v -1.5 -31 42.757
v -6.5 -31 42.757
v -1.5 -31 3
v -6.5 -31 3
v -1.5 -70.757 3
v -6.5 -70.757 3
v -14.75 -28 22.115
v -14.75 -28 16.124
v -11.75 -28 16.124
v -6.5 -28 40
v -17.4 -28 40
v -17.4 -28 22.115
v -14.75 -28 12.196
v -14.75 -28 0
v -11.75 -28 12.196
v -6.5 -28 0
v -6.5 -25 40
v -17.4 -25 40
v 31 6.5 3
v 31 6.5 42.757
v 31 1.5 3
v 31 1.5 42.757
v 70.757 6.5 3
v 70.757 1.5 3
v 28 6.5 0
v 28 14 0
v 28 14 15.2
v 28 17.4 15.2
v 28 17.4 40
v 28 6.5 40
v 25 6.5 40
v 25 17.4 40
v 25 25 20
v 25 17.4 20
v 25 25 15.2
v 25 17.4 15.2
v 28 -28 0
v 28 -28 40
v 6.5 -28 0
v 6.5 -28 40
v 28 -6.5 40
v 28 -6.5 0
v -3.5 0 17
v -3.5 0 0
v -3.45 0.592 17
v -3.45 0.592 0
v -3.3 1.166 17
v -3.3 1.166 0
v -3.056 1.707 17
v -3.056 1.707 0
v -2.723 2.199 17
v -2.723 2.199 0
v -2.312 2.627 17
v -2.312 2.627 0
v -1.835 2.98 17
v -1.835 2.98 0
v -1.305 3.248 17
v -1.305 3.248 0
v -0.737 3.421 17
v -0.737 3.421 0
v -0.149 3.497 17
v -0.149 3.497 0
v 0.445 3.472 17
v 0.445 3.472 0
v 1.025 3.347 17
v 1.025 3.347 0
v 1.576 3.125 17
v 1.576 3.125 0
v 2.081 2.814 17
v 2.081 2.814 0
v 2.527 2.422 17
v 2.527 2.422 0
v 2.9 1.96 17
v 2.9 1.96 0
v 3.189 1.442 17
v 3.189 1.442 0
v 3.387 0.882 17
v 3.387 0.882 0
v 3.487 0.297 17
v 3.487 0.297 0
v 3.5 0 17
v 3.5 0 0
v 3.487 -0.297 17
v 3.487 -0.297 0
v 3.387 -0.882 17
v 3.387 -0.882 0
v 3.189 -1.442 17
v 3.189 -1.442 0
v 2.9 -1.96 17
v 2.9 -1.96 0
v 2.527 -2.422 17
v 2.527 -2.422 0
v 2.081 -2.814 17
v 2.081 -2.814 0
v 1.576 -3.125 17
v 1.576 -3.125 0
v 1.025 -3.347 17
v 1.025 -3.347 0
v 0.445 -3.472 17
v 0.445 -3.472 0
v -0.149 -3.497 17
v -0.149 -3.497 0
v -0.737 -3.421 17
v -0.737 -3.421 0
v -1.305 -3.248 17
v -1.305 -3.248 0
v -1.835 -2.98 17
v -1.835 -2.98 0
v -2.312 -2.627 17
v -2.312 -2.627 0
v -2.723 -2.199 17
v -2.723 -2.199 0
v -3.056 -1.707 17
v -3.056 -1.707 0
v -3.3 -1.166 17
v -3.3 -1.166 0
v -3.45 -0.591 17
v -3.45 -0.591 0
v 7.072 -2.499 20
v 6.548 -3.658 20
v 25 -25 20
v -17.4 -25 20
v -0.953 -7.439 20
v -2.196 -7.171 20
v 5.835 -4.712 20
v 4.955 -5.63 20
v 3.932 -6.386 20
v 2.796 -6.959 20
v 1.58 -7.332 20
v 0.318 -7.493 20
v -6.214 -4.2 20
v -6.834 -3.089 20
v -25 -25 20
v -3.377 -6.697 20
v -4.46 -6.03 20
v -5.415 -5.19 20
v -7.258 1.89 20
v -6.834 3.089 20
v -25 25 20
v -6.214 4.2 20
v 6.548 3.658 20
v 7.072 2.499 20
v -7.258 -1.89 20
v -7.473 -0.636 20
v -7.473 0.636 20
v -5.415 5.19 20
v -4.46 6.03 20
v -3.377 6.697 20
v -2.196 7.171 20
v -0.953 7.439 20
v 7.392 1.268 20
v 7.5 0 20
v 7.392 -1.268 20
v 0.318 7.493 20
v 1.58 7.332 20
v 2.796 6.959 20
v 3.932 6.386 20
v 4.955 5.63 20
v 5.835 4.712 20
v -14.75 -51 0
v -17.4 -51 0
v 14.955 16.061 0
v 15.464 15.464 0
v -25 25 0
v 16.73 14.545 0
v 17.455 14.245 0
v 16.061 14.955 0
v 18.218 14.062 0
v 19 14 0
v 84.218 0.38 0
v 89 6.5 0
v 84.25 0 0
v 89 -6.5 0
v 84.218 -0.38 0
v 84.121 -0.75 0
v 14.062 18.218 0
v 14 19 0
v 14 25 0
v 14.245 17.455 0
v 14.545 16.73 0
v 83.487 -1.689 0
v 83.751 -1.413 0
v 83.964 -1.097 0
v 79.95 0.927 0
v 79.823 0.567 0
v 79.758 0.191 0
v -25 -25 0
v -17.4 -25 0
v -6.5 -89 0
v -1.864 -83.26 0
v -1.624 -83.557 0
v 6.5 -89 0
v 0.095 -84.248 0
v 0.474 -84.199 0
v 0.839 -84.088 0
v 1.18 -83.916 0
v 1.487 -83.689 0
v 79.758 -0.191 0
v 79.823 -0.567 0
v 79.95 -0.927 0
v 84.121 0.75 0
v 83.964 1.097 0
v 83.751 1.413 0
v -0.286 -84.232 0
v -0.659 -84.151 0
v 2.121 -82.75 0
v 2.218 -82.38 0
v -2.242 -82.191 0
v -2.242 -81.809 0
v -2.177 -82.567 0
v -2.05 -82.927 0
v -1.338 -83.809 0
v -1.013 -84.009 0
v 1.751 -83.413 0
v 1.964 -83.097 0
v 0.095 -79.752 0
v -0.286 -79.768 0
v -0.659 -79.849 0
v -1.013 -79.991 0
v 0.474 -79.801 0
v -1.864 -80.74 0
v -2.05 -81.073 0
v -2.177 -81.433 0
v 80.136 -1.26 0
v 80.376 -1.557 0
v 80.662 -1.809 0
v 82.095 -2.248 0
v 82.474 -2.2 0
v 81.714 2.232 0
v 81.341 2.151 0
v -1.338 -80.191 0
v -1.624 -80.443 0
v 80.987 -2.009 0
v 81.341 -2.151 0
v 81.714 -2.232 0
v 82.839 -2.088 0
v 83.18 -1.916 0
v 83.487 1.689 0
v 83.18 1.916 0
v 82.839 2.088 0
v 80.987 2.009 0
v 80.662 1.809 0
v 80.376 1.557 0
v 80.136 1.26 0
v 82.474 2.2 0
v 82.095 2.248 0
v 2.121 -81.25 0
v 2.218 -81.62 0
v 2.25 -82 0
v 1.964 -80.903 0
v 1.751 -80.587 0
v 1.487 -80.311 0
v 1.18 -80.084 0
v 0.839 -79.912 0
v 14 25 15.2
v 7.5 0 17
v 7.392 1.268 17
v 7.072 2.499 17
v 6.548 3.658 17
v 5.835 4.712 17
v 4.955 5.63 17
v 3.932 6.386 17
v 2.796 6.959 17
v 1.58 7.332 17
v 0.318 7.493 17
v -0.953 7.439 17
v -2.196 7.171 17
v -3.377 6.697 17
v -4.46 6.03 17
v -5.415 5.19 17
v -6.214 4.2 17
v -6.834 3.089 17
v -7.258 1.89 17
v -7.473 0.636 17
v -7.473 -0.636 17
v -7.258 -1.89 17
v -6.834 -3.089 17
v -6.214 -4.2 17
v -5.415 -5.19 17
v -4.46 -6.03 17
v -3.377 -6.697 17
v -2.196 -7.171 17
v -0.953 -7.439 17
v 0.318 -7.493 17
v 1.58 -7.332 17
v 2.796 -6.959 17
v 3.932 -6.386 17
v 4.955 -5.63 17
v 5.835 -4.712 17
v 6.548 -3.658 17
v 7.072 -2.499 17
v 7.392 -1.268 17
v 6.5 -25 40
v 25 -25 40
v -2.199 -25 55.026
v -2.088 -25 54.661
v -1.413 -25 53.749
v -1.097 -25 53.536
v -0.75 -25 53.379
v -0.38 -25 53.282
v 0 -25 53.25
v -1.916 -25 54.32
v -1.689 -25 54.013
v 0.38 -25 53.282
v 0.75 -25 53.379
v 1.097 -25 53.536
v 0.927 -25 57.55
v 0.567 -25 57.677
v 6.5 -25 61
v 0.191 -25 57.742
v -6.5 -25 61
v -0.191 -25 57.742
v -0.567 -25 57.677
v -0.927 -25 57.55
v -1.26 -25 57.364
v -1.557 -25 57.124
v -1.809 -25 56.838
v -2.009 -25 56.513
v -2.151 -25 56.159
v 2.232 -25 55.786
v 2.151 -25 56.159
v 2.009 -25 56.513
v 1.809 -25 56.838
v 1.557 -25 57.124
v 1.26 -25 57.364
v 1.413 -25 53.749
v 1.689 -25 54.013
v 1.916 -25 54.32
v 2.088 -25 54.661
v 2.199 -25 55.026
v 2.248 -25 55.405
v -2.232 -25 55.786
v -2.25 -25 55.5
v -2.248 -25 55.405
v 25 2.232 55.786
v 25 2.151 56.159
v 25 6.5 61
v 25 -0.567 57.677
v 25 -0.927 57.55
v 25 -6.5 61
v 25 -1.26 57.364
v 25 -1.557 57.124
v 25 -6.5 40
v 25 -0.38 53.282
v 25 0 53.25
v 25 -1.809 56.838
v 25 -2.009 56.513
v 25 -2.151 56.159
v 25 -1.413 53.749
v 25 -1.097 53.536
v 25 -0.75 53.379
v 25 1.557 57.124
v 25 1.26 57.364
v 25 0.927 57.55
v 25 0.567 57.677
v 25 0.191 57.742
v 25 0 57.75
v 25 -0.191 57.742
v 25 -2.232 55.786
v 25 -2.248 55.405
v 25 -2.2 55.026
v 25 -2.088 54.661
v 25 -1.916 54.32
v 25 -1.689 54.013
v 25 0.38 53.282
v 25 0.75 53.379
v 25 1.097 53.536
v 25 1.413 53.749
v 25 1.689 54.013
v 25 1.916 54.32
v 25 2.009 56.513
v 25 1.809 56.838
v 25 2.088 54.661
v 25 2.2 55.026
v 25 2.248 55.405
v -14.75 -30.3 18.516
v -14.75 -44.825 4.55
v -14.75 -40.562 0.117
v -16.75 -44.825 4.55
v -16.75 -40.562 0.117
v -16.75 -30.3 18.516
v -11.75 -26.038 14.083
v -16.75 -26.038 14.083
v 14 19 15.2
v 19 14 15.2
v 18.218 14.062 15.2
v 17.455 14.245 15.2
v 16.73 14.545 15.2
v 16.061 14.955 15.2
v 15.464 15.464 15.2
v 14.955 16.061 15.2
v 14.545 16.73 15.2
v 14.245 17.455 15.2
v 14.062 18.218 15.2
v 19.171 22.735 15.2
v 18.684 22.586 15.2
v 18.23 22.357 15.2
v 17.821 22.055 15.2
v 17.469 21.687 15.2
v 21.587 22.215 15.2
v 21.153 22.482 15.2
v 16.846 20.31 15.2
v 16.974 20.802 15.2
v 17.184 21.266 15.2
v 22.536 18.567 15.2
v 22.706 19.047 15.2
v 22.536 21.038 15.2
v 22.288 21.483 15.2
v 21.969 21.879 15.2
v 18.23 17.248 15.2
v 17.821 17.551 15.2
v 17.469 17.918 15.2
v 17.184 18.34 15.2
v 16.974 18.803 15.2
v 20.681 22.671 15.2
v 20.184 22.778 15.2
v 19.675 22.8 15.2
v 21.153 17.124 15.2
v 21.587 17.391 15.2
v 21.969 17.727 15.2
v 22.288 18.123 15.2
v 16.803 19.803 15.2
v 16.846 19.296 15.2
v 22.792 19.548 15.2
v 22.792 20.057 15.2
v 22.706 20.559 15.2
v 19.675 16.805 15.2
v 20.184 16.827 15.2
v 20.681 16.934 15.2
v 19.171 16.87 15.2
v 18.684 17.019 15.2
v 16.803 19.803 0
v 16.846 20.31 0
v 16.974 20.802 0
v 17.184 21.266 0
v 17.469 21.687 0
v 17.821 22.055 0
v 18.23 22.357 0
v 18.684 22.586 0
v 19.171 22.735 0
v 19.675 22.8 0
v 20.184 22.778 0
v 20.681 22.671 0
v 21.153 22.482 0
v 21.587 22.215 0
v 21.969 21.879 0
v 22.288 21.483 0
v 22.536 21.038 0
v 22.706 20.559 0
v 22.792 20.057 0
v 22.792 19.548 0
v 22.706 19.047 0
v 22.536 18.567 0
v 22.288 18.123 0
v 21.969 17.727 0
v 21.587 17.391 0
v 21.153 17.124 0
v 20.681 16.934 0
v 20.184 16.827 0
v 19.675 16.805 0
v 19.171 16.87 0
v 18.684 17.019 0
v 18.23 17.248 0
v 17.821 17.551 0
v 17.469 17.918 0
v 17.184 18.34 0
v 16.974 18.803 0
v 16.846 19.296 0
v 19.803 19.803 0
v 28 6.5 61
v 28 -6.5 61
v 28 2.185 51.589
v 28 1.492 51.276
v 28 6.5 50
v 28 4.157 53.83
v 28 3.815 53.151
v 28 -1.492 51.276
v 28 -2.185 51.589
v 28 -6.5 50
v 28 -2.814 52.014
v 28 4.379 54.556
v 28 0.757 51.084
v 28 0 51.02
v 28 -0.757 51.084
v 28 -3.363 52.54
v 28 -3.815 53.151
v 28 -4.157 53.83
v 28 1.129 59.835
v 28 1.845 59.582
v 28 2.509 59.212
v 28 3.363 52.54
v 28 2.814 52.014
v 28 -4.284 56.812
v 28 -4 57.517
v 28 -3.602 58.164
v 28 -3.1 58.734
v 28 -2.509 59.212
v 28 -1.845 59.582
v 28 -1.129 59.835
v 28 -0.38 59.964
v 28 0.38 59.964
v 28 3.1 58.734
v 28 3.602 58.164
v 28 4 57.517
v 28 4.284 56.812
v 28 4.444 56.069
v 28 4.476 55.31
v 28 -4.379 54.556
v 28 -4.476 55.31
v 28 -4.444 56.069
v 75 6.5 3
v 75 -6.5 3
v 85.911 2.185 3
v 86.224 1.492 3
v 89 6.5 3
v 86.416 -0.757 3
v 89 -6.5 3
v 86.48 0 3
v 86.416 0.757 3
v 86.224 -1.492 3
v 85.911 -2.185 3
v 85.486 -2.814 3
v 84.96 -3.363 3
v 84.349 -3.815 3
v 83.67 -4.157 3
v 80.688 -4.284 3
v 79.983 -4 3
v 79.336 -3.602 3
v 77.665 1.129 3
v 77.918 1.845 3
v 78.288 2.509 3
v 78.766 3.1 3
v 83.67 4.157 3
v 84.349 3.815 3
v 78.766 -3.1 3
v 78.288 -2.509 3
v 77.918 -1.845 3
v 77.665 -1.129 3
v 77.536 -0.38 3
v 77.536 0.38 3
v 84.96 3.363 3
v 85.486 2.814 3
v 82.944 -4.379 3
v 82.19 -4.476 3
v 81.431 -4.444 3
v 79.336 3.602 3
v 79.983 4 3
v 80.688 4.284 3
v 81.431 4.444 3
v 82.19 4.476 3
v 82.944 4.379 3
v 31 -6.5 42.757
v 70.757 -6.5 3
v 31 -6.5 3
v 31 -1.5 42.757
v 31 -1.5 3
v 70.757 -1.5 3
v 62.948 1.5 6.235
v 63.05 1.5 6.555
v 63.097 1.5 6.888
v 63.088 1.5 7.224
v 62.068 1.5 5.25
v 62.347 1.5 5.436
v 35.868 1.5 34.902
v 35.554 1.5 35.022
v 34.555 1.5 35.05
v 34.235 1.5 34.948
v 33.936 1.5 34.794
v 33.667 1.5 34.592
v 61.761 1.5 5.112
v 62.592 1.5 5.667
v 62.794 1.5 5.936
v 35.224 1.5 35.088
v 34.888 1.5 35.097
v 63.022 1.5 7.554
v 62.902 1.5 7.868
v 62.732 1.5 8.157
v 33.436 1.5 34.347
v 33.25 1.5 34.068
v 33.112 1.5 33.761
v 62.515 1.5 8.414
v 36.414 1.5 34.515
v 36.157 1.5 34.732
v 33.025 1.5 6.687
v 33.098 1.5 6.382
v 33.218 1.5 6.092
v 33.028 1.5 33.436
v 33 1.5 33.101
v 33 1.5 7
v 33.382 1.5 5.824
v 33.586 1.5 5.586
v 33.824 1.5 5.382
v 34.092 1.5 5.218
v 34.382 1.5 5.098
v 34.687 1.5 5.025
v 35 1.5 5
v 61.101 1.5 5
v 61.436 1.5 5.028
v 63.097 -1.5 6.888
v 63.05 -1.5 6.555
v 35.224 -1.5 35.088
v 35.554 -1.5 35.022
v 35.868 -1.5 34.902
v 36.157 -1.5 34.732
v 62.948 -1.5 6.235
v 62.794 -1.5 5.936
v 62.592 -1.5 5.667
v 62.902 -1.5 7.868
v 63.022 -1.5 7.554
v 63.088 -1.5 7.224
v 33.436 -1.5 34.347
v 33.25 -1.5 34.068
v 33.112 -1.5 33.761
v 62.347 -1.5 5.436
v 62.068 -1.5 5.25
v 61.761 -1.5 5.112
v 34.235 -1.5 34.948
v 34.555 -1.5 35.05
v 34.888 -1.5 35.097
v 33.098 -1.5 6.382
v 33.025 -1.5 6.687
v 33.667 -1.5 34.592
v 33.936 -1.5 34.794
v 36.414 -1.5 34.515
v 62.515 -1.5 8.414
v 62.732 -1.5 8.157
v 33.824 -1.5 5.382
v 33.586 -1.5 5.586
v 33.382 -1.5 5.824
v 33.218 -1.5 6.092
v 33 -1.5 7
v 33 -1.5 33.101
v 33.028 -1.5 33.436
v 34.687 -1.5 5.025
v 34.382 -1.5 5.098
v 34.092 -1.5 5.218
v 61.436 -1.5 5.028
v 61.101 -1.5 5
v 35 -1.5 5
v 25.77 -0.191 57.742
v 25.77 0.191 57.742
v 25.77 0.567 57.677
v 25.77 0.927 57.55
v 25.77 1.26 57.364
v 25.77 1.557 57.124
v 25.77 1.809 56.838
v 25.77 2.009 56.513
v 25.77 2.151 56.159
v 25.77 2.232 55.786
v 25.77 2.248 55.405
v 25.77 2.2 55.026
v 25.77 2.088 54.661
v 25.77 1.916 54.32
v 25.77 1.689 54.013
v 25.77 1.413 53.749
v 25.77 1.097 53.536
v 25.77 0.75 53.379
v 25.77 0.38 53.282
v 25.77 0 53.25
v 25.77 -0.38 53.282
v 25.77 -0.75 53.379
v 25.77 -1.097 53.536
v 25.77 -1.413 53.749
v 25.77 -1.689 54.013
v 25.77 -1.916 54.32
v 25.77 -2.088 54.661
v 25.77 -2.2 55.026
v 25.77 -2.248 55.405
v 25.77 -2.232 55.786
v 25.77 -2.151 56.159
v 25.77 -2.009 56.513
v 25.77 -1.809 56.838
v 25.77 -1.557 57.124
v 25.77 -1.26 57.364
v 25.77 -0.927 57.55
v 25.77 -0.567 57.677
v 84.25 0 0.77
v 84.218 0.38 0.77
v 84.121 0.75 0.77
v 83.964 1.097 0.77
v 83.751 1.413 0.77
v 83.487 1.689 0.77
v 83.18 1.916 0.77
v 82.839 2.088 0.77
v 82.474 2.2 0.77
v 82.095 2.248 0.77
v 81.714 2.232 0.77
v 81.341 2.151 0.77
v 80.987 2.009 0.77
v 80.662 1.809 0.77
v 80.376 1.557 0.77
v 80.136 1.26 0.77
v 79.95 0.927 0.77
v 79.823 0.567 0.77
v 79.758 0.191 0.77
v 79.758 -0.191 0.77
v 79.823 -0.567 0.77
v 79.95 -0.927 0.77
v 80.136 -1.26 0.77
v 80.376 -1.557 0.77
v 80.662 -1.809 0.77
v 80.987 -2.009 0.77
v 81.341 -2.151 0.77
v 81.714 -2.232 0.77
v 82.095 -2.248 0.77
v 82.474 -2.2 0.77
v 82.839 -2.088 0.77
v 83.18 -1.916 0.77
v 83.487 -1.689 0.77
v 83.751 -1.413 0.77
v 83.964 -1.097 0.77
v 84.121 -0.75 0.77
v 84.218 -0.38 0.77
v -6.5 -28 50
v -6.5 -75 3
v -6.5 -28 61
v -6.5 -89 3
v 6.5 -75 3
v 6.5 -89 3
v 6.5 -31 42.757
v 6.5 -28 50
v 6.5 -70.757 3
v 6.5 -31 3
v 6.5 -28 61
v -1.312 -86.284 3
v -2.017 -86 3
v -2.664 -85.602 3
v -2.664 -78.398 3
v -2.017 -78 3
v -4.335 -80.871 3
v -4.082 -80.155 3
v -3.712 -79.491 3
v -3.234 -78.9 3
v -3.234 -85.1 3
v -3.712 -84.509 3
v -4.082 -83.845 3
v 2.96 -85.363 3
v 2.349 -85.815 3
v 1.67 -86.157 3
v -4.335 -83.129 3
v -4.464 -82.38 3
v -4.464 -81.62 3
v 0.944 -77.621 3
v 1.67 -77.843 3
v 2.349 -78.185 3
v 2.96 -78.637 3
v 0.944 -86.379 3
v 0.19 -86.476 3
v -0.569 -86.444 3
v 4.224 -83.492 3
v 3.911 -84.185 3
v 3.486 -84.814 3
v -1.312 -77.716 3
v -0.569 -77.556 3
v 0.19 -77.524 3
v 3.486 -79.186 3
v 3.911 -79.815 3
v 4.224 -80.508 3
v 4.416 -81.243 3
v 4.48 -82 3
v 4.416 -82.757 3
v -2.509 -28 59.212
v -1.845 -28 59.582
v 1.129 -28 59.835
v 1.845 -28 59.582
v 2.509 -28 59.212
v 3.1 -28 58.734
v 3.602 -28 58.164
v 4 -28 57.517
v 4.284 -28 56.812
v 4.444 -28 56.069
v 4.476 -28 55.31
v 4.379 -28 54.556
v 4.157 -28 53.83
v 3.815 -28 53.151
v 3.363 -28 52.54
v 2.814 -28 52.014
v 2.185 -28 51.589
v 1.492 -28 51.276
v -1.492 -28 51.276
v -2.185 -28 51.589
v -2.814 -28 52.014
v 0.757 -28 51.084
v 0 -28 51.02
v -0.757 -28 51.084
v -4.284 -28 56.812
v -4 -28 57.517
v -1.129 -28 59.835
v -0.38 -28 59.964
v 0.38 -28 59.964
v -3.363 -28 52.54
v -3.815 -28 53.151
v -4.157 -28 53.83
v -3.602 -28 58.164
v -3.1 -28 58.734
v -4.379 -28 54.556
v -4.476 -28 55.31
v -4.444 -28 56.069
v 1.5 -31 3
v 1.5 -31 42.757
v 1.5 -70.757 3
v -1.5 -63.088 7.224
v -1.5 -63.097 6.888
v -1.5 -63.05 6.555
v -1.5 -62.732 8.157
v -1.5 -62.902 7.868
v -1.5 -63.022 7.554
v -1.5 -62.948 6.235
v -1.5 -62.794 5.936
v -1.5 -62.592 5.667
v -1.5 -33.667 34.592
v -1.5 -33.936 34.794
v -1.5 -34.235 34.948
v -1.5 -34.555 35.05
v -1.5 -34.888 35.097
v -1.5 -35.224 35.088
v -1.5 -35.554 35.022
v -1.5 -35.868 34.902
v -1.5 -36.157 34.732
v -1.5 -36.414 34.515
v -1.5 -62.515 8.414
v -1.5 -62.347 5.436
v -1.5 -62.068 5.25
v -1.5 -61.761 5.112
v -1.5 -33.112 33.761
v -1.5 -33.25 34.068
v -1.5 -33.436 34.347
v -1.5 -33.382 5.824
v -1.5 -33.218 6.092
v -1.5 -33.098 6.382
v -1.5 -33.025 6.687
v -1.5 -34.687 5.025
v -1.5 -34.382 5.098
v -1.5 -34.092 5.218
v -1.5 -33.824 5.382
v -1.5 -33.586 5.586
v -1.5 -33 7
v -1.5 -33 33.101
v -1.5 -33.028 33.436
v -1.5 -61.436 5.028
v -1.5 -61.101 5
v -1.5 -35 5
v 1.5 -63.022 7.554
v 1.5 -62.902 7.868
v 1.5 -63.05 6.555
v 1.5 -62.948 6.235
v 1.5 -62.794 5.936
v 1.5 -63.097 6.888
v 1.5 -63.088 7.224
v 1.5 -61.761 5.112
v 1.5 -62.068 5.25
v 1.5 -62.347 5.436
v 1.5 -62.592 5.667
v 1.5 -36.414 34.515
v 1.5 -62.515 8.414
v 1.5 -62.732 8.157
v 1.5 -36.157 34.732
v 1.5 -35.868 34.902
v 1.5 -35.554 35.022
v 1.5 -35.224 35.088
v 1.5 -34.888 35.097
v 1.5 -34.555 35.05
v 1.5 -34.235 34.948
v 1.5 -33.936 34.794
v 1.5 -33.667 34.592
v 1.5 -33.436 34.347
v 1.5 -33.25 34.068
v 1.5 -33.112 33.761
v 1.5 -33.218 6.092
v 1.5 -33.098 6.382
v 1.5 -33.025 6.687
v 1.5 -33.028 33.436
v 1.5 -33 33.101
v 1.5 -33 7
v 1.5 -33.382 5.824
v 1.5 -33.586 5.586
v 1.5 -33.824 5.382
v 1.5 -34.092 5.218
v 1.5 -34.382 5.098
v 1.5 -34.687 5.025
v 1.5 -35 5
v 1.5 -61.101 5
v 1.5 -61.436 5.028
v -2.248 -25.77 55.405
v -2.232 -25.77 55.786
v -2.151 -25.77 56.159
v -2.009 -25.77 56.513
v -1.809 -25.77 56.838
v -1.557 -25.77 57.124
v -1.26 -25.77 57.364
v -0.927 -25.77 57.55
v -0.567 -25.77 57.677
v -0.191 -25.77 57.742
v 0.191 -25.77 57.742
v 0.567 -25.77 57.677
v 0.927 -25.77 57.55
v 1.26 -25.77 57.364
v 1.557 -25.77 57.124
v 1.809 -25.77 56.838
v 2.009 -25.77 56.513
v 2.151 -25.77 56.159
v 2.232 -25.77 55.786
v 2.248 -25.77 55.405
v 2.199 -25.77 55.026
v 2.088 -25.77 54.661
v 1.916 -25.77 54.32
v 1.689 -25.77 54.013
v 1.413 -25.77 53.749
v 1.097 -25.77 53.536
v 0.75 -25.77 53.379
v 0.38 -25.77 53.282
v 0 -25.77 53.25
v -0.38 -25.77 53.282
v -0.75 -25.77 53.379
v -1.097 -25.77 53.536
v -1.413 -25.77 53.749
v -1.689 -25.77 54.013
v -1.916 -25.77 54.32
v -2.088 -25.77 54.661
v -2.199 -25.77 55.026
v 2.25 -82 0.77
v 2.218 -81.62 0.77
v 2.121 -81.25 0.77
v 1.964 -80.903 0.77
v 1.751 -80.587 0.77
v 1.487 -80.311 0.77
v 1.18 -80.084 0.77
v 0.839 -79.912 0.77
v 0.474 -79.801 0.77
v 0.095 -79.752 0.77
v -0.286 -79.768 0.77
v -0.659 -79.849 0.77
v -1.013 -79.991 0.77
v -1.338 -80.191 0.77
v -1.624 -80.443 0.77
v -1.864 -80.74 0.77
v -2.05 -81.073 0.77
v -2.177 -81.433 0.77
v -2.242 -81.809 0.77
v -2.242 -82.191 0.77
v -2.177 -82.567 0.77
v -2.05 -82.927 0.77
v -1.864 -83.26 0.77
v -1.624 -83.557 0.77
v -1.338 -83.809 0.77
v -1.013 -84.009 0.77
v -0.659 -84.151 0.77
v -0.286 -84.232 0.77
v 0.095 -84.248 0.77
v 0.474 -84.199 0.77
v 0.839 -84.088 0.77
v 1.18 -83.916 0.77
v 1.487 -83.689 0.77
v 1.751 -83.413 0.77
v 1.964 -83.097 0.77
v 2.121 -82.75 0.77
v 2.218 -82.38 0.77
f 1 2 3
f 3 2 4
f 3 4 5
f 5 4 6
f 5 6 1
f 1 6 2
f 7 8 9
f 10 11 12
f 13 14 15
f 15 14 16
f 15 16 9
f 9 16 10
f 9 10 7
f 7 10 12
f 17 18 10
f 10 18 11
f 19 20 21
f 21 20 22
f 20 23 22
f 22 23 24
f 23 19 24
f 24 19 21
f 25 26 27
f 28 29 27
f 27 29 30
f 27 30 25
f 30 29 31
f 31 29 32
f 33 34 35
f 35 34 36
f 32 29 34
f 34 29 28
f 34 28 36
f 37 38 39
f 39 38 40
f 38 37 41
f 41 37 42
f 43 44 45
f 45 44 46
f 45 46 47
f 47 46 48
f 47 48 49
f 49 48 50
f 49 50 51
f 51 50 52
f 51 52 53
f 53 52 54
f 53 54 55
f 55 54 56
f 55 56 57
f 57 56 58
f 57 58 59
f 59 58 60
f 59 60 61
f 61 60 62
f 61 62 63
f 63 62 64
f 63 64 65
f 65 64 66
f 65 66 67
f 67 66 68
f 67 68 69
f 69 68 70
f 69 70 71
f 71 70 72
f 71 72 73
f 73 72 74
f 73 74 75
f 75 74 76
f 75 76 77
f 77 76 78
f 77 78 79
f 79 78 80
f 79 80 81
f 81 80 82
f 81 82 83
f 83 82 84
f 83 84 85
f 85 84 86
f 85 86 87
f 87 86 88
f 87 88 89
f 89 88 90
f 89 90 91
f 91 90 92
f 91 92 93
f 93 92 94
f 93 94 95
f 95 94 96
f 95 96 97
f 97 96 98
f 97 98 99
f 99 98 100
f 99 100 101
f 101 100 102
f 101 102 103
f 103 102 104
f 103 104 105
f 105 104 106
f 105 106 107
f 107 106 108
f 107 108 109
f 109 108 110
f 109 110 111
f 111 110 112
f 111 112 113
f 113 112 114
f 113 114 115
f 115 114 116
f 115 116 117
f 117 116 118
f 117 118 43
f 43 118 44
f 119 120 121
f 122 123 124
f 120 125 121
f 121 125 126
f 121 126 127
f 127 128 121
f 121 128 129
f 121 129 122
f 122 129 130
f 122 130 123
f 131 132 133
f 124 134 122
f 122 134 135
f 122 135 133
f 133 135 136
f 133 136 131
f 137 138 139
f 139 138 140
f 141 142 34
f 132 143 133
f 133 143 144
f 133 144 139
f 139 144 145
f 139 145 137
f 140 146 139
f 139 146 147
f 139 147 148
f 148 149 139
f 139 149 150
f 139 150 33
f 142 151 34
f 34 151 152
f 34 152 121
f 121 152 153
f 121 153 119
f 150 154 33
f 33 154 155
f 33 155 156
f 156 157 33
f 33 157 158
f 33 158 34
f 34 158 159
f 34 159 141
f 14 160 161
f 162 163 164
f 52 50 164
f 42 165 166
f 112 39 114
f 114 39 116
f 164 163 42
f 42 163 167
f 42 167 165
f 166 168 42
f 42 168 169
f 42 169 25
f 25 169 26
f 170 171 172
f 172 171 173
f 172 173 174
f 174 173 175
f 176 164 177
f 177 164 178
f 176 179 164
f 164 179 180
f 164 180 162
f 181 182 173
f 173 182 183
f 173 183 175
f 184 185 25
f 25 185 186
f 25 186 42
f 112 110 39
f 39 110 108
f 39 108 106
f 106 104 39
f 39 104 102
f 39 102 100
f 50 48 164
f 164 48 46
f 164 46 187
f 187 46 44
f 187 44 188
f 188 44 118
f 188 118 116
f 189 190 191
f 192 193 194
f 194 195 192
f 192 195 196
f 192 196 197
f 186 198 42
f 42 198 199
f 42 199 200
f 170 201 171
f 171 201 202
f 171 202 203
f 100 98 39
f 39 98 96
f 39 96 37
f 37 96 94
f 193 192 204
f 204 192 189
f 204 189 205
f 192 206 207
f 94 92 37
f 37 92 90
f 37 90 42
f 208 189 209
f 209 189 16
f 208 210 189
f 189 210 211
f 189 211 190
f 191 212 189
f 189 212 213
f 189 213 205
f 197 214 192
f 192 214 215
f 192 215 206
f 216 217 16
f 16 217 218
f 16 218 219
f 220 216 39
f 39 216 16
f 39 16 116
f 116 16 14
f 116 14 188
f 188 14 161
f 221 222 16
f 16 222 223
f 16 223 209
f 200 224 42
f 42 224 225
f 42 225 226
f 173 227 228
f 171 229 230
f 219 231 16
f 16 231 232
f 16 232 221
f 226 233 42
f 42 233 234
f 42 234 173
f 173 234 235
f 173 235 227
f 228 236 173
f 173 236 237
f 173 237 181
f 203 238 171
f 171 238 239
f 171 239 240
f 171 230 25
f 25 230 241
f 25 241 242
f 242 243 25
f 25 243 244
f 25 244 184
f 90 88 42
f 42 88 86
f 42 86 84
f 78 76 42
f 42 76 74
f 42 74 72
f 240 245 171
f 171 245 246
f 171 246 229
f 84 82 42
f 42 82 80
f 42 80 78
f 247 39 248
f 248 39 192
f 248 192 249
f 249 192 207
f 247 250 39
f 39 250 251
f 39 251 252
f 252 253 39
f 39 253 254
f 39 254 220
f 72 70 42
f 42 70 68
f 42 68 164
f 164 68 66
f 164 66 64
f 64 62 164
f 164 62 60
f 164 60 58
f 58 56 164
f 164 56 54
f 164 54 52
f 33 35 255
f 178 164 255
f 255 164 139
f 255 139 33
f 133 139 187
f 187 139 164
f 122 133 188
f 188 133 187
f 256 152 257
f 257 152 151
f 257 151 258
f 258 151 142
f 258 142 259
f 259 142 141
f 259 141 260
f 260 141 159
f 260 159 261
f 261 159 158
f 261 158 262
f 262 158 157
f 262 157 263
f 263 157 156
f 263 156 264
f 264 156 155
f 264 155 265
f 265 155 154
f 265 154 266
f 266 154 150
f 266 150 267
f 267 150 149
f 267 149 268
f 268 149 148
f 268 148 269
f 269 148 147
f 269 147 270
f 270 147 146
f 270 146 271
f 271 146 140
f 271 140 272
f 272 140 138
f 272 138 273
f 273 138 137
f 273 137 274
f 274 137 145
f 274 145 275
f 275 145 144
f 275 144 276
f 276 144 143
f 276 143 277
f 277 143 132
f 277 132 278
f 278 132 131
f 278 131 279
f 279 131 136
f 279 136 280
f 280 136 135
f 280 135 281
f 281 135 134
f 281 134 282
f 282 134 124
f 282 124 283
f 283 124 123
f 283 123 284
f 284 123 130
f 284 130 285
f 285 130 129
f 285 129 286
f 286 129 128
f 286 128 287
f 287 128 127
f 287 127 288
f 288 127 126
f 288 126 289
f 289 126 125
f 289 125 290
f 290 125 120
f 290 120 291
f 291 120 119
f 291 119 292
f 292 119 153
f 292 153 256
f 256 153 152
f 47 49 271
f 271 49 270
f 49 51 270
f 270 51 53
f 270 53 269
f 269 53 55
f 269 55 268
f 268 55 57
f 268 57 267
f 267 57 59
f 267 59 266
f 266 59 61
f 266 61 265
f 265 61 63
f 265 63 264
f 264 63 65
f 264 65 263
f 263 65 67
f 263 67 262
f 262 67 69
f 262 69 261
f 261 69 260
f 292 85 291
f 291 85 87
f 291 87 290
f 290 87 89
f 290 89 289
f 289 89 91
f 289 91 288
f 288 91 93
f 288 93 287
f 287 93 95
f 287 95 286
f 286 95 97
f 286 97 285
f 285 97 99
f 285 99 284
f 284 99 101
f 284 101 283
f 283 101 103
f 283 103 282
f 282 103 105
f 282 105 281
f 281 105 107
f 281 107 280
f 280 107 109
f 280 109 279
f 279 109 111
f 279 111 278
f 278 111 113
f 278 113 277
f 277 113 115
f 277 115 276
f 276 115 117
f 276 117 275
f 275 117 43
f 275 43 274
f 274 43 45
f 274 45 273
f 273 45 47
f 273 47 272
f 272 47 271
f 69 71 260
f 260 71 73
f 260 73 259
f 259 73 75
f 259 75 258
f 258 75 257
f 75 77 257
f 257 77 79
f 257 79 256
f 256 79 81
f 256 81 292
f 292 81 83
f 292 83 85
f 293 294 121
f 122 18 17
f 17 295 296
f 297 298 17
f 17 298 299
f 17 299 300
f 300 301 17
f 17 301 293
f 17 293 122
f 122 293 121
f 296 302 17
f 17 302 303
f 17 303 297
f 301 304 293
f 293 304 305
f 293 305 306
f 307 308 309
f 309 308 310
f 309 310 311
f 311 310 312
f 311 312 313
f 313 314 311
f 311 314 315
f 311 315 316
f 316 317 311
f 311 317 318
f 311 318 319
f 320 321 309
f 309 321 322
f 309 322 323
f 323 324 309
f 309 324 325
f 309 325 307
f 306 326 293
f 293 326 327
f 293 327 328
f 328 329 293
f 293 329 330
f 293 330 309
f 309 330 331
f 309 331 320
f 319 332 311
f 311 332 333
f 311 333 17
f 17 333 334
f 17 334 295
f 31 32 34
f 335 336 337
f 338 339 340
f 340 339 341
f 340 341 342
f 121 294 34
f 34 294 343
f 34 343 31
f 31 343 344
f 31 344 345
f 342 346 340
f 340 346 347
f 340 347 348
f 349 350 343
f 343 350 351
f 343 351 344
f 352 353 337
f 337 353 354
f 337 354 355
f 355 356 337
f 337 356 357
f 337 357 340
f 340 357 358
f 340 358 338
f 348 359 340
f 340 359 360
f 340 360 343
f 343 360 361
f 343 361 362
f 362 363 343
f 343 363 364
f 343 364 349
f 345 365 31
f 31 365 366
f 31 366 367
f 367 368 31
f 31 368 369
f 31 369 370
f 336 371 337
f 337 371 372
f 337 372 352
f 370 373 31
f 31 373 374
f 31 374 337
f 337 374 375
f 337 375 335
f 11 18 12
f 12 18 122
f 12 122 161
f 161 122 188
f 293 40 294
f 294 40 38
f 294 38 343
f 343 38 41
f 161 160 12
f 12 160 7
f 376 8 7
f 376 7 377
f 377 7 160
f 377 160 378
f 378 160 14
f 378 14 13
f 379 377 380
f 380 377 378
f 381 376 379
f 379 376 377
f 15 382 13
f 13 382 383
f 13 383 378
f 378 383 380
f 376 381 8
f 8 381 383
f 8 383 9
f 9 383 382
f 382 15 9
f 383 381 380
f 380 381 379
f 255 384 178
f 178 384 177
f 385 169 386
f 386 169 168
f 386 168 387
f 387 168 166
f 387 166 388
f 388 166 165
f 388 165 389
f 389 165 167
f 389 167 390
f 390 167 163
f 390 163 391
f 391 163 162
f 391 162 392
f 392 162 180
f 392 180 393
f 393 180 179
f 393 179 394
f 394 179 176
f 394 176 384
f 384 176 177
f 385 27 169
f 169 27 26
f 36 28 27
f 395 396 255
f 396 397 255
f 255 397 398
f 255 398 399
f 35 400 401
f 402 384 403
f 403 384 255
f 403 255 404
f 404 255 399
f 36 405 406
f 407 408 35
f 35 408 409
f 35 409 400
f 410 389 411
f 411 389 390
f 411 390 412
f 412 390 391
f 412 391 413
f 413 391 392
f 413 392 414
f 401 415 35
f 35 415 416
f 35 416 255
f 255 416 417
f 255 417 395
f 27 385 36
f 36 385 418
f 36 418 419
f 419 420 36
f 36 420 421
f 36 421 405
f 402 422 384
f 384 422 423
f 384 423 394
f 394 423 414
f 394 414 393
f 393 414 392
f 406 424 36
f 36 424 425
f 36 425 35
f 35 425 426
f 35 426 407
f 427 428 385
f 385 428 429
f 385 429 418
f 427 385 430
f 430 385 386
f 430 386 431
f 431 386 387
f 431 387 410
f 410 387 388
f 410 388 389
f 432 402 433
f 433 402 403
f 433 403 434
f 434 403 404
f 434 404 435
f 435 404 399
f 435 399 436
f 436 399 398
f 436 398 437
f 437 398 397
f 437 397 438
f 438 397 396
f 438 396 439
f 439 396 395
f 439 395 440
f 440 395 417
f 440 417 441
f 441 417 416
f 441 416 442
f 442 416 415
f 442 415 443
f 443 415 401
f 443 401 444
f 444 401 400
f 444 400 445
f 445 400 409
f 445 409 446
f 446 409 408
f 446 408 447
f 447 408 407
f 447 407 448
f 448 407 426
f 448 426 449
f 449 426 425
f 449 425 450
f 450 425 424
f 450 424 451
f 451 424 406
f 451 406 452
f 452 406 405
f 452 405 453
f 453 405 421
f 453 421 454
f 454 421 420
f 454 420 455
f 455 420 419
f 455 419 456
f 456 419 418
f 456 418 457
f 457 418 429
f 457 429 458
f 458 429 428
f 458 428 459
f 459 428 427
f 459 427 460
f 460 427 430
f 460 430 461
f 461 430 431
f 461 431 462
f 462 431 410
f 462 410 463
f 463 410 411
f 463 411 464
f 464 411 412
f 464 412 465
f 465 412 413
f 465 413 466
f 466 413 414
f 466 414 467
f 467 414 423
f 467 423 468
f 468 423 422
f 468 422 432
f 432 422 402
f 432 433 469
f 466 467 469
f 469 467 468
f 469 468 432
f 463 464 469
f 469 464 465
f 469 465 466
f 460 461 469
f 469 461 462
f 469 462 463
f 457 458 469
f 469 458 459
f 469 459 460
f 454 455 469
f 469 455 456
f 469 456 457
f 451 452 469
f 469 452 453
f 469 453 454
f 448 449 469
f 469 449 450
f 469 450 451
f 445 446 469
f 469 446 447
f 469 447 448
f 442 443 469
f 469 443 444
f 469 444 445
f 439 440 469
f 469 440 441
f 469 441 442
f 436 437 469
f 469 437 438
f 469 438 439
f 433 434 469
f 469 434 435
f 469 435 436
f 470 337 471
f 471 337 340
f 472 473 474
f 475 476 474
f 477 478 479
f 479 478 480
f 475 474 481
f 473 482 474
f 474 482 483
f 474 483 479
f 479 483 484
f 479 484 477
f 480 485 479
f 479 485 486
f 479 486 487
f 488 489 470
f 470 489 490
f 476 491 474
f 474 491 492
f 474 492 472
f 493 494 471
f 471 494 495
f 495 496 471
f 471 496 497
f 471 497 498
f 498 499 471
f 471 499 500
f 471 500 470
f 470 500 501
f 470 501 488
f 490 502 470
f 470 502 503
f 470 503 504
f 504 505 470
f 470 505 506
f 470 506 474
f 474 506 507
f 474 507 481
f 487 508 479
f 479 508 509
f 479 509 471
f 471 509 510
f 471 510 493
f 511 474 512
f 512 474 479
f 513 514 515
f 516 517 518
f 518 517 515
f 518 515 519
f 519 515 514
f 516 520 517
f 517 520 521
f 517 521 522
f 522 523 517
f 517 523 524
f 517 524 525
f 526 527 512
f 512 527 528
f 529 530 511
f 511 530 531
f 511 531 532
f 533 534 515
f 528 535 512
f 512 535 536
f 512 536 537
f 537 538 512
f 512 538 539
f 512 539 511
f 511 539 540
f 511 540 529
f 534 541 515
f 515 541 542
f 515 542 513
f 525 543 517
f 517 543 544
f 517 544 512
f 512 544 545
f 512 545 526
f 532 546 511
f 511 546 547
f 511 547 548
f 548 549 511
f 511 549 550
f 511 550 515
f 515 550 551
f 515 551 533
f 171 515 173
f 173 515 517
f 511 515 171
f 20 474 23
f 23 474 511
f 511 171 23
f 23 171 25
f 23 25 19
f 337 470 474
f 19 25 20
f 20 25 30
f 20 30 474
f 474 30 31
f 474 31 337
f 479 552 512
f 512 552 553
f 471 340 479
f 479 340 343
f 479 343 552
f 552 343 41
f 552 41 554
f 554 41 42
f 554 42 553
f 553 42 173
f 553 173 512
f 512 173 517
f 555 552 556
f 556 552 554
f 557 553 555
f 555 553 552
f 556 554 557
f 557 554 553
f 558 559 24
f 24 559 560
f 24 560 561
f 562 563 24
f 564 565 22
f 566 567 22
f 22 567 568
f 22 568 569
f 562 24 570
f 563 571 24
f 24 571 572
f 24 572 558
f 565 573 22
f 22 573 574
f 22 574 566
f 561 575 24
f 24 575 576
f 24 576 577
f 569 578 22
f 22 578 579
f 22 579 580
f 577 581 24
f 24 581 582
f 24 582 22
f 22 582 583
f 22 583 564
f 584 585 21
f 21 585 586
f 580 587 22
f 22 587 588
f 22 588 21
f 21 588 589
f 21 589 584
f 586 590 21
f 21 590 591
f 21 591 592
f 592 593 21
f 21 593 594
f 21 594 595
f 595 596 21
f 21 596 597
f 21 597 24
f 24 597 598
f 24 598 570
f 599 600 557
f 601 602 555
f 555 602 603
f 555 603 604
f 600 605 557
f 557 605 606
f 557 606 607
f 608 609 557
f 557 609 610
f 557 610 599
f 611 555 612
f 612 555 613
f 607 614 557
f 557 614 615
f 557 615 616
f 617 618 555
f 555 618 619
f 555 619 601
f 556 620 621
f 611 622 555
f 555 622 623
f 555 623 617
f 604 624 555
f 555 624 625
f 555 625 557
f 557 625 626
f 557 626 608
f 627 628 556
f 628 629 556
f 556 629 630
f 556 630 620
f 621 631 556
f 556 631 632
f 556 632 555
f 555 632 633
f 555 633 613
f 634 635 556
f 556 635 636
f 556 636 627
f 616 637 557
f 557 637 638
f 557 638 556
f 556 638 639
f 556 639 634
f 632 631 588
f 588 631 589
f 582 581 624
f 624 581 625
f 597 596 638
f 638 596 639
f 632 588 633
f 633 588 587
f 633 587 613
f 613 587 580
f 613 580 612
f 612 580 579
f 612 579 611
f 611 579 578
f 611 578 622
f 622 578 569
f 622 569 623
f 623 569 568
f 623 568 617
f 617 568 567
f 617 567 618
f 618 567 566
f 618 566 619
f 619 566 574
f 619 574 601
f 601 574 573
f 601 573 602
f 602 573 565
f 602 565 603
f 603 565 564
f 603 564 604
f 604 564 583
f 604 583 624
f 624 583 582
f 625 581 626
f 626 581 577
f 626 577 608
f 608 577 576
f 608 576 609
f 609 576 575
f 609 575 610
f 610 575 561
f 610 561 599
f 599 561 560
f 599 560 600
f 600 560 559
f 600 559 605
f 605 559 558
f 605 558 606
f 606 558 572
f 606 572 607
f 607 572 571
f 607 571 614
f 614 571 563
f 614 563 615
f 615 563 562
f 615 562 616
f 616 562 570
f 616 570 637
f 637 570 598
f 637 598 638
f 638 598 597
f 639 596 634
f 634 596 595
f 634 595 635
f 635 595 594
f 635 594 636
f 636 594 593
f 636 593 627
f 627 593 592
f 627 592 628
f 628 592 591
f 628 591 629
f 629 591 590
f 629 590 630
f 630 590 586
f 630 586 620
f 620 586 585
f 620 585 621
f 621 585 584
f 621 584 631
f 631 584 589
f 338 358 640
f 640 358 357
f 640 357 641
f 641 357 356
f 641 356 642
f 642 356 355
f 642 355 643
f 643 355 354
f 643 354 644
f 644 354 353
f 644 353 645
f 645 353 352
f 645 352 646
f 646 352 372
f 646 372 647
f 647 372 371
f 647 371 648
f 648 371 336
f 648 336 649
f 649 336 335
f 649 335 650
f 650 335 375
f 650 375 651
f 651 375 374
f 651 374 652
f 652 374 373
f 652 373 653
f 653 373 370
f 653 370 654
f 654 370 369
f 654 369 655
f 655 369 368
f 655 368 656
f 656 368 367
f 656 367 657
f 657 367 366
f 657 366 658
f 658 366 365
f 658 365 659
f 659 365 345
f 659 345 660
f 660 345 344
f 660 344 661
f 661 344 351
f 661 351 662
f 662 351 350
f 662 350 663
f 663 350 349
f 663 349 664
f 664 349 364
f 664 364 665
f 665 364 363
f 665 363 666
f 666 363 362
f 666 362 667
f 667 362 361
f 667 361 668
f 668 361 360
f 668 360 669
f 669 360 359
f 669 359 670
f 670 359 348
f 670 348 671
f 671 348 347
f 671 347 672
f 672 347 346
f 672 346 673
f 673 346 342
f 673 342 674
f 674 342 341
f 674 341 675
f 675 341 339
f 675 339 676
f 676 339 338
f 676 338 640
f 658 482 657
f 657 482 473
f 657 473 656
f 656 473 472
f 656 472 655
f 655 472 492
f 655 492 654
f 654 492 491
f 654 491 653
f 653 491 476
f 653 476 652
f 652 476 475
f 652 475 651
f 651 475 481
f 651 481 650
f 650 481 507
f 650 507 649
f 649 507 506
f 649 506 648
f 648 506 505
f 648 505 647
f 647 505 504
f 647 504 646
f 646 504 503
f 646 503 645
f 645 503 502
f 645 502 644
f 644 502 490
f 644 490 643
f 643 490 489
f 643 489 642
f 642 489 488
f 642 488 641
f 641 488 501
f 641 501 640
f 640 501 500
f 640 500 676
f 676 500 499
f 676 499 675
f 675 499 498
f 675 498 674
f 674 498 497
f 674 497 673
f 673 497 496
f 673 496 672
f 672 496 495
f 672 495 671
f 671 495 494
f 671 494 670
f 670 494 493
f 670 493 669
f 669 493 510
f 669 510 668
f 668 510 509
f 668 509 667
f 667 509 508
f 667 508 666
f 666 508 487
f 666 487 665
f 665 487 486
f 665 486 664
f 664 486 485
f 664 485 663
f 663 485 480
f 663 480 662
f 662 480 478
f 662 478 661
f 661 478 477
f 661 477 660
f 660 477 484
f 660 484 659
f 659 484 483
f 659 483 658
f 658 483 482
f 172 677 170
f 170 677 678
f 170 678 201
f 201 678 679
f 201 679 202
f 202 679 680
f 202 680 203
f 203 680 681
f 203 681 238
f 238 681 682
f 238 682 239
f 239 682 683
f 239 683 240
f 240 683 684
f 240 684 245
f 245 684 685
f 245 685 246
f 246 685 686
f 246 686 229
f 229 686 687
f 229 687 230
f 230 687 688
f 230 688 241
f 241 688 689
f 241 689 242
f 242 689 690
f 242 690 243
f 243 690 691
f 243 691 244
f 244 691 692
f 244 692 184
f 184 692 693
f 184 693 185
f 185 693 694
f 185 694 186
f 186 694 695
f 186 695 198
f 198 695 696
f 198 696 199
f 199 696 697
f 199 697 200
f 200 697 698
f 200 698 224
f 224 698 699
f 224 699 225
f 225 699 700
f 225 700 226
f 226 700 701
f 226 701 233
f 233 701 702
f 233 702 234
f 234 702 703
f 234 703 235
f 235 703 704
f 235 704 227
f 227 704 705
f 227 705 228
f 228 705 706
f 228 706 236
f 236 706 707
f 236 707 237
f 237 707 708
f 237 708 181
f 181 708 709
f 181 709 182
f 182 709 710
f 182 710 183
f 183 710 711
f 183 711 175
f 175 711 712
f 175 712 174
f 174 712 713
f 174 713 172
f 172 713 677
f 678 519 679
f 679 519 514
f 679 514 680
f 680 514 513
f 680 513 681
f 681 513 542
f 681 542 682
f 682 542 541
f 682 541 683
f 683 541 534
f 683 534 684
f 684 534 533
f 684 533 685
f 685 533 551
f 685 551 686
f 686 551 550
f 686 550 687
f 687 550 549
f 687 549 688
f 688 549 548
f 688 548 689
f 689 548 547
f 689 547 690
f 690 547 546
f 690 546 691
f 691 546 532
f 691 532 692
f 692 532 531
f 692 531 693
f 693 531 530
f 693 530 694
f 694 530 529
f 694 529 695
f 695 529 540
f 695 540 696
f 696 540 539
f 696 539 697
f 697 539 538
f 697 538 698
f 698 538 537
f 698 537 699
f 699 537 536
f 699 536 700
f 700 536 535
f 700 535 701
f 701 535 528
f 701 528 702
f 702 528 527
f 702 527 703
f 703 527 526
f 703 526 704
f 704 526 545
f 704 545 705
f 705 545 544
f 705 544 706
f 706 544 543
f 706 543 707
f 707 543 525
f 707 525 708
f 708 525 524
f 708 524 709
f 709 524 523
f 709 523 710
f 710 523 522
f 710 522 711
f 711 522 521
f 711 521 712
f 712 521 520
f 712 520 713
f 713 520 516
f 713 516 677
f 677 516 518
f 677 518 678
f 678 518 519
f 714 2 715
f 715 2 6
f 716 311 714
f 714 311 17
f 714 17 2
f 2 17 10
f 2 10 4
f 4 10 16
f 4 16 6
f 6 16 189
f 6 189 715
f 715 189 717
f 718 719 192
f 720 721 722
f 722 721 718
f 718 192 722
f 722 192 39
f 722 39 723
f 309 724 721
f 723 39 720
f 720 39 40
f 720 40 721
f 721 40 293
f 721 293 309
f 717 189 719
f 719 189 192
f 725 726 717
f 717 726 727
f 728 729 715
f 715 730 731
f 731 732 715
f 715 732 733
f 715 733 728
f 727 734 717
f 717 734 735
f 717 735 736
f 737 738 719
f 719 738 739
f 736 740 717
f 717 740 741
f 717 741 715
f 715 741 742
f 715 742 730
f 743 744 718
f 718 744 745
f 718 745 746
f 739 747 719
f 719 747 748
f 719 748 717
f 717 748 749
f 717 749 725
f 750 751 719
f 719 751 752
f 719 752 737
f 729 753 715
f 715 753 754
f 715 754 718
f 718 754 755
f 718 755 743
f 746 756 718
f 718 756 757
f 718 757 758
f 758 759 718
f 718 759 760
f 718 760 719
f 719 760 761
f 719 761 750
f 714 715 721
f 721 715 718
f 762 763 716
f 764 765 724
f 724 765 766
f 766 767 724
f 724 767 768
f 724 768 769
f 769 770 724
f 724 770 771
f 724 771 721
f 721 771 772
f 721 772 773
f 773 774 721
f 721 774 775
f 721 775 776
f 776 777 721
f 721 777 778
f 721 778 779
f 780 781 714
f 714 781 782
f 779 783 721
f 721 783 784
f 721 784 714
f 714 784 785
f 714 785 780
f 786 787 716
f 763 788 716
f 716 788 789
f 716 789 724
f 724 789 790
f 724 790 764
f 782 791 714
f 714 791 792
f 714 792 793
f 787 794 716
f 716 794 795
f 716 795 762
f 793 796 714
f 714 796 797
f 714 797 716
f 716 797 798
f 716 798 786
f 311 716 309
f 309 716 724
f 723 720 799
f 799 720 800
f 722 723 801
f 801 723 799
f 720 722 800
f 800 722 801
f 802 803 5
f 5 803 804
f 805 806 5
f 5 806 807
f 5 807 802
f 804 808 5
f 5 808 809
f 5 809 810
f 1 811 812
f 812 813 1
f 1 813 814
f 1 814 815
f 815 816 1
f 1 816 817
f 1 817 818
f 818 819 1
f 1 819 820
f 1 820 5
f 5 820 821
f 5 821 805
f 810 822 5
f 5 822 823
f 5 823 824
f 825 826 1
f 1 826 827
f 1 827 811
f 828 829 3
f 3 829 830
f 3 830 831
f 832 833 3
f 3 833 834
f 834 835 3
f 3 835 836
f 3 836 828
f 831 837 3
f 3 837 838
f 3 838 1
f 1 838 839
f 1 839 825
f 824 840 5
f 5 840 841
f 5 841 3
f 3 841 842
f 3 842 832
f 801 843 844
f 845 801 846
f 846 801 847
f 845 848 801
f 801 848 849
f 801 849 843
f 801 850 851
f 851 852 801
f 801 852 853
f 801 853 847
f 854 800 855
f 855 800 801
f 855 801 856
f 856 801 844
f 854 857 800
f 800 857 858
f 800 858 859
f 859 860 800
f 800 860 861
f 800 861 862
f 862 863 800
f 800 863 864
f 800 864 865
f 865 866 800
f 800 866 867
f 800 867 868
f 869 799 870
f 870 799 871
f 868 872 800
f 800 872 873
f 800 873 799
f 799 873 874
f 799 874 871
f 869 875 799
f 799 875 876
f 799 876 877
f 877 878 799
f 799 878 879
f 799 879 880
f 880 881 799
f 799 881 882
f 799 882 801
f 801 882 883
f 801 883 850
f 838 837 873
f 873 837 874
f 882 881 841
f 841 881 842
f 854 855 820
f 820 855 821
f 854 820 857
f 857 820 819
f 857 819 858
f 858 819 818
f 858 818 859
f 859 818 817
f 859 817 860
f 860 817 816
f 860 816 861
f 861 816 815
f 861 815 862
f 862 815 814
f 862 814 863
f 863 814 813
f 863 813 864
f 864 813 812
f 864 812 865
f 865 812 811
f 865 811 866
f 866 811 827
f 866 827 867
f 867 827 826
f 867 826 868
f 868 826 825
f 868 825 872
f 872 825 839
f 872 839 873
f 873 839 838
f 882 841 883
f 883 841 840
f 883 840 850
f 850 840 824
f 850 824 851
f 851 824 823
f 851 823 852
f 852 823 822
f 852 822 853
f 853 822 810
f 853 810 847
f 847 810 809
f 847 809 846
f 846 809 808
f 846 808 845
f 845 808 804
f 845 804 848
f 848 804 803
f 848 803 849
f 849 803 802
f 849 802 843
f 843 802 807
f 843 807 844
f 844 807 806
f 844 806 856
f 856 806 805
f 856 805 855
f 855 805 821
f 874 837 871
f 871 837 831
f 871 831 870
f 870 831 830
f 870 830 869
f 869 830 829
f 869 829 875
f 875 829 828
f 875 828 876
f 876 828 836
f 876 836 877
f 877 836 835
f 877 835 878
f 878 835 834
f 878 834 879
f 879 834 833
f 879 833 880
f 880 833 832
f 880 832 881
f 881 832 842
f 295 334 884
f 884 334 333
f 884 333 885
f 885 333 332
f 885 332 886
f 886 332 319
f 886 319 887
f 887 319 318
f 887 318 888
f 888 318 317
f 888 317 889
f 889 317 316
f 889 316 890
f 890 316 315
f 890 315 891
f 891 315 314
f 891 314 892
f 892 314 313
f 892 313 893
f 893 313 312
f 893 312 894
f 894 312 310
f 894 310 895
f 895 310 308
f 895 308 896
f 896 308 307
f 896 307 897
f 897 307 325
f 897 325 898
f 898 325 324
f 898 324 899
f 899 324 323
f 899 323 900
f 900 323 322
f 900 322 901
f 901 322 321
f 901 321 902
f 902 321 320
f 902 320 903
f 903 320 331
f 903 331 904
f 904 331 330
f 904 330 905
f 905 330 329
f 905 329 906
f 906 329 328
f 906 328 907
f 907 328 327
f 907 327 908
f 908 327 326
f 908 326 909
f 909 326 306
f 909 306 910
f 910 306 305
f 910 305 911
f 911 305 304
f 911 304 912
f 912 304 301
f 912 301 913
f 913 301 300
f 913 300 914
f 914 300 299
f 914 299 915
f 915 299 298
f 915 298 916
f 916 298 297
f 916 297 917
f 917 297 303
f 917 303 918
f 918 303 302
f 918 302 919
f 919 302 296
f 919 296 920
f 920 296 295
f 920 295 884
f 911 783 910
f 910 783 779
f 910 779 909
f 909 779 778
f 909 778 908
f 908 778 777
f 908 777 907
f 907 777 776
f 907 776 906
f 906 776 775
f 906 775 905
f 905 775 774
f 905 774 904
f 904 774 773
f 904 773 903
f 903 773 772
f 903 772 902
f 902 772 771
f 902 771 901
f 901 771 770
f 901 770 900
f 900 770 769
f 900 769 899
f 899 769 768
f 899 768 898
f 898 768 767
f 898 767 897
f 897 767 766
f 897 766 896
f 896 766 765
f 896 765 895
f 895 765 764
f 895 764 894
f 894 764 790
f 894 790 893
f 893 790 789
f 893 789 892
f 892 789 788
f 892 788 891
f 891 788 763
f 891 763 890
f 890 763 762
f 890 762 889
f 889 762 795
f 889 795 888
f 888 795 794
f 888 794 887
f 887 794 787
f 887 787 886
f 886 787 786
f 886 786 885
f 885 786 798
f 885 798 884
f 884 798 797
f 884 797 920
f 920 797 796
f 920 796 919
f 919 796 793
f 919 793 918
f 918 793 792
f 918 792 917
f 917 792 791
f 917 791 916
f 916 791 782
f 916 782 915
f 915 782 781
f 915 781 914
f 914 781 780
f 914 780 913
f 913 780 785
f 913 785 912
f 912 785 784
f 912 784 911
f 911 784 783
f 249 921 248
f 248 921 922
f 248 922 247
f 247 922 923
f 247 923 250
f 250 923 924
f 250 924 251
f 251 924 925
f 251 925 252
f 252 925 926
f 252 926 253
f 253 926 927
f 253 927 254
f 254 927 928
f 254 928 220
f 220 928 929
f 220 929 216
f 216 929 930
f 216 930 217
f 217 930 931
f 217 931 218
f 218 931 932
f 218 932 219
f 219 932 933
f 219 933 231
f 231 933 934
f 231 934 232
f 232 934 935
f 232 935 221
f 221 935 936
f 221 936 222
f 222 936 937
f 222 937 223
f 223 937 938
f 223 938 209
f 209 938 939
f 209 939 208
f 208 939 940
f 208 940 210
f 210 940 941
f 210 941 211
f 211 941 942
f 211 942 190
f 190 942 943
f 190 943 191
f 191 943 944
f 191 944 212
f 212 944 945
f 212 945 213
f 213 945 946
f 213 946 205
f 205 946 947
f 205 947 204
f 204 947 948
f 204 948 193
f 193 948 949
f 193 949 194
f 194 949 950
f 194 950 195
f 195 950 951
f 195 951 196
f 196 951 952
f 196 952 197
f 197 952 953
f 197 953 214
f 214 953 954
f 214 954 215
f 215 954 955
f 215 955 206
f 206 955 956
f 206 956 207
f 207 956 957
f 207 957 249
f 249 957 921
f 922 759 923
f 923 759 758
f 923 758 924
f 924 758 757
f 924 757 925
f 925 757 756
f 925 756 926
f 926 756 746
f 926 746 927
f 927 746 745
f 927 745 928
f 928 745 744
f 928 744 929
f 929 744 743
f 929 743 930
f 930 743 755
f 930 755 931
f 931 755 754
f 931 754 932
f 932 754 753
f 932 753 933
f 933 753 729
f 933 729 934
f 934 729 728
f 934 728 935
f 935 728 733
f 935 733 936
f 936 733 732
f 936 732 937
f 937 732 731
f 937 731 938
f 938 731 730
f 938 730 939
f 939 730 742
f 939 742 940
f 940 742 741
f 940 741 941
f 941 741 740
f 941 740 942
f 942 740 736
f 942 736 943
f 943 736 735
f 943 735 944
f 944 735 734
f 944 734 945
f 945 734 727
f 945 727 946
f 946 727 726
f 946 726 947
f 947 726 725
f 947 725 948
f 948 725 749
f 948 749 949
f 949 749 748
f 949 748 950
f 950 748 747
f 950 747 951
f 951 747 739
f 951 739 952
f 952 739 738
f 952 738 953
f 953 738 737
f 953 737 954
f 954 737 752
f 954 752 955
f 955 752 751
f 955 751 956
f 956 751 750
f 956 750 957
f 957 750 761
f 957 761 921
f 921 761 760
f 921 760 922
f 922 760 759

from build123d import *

# Parameters (mm, degrees)
CROQUIS2_W                                           = 50
CROQUIS2_H                                           = 50
CROQUIS2_R                                           = 3.5
SALIENTE_EXTRUIR2_DEPTH                              = 20
CROQUIS3_R                                           = 7.5
CORTAR_EXTRUIR1_DEPTH                                = 3
SALIENTE_EXTRUIR3_DEPTH                              = 40
SALIENTE_EXTRUIR4_DEPTH                              = 2.65
CORTAR_EXTRUIR2_START                                = -2
CORTAR_EXTRUIR2_DEPTH                                = 5
CORTAR_EXTRUIR5_START                                = -2.65
CORTAR_EXTRUIR5_DEPTH                                = 2.65
SALIENTE_EXTRUIR5_DEPTH                              = 44.75
CROQUIS13_R                                          = 3
CORTAR_EXTRUIR6_DEPTH                                = 15.2
SALIENTE_EXTRUIR6_START                              = -21.5
SALIENTE_EXTRUIR6_DEPTH                              = 13
SALIENTE_EXTRUIR7_START                              = -5
SALIENTE_EXTRUIR7_DEPTH                              = 3
REDONDEO1_R                                          = 2
CROQUIS17_R                                          = 2
CORTAR_EXTRUIR7_DEPTH                                = 3
CROQUIS18_R                                          = 2
CORTAR_EXTRUIR8_DEPTH                                = 3
REFRENTADO_PARA_TORNILLO_TAP_N_CON_CABEZ_D           = 4.5
REFRENTADO_PARA_TORNILLO_TAP_N_CON_CABEZ_CSINK_D     = 8.96
REFRENTADO_PARA_TORNILLO_TAP_N_CON_CABEZ_CSINK_ANGLE = 90
REDONDEO1_OF_SIMETR_A3_R                             = 2


with BuildPart() as part:
    # Croquis2 → Saliente-Extruir2 (new body)
    with BuildSketch(Plane.XY):
        Rectangle(CROQUIS2_W, CROQUIS2_H)
        Circle(CROQUIS2_R, mode=Mode.SUBTRACT)
    extrude(amount=SALIENTE_EXTRUIR2_DEPTH)

    # Croquis3 → Cortar-Extruir1 (cut)
    with BuildSketch(Plane.XY.offset(20)):
        Circle(CROQUIS3_R)
    extrude(amount=-CORTAR_EXTRUIR1_DEPTH, mode=Mode.SUBTRACT)

    # Croquis4 → Saliente-Extruir3 (add)
    with BuildSketch(Plane(origin=(0, 0, 0), x_dir=(-1, 0, 0), z_dir=(0, 0, -1))):
        Polygon((-25, -25), (-25, 17.4), (-28, 17.4), (-28, -28), (17.4, -28), (17.4, -25), align=None)
    extrude(amount=-SALIENTE_EXTRUIR3_DEPTH)

    # Croquis5 → Saliente-Extruir4 (add)
    with BuildSketch(Plane(origin=(0, 17.4, 0), x_dir=(1, 0, 0), z_dir=(0, 1, 0))):
        Polygon((25, 0), (51, 0), (25, -25), align=None)
    saliente_extruir4 = extrude(amount=-SALIENTE_EXTRUIR4_DEPTH)

    # Croquis6 → Cortar-Extruir2 (cut)
    with BuildSketch(Plane.XZ.offset(-14.75).offset(CORTAR_EXTRUIR2_START)):
        Polygon((44.824955825, 4.550258722), (30.300169567, 18.516399355), (26.037550962, 14.083276006), (40.56233722, 0.117135373), align=None)
    cortar_extruir2 = extrude(amount=CORTAR_EXTRUIR2_DEPTH, mode=Mode.SUBTRACT)

    # Simetría2: Saliente-Extruir4, Cortar-Extruir2 across plane
    add(saliente_extruir4.mirror(Plane(origin=(0, 0, 0), x_dir=(0, 0, 1), z_dir=(0.707106781, 0.707106781, 0))))
    add(cortar_extruir2.mirror(Plane(origin=(0, 0, 0), x_dir=(0, 0, 1), z_dir=(0.707106781, 0.707106781, 0))), mode=Mode.SUBTRACT)

    # Croquis11 → Cortar-Extruir5 (cut)
    with BuildSketch(Plane.XZ.offset(-14.75).offset(CORTAR_EXTRUIR5_START)):
        Polygon((28, 0), (51, 0), (28, 22.115384615), align=None)
    extrude(amount=CORTAR_EXTRUIR5_DEPTH, mode=Mode.SUBTRACT)

    # Croquis14 → Saliente-Extruir5 (add)
    with BuildSketch(Plane.XZ.offset(-16.75)):
        Polygon((26.037550962, 14.083276006), (28, 12.196305777), (28, 16.124223005), align=None)
    extrude(amount=SALIENTE_EXTRUIR5_DEPTH)

    # Croquis13 → Cortar-Extruir6 (cut)
    with BuildSketch(Plane(origin=(0, 0, 0), x_dir=(-1, 0, 0), z_dir=(0, 0, -1))):
        with BuildLine():
            Line((-25, 25), (-14, 25))
            Line((-14, 25), (-14, 19))
            ThreePointArc((-14, 19), (-15.464466094, 15.464466094), (-19, 14))
            Line((-19, 14), (-25, 14))
            Line((-25, 14), (-28, 14))
            Line((-28, 14), (-28, 17.4))
            Line((-28, 17.4), (-25, 17.4))
            Line((-25, 17.4), (-25, 25))
        make_face()
        with Locations((-19.802765158, 19.802765158)):
            Circle(CROQUIS13_R, mode=Mode.SUBTRACT)
    extrude(amount=-CORTAR_EXTRUIR6_DEPTH, mode=Mode.SUBTRACT)

    # Croquis15 → Saliente-Extruir6 (add)
    with BuildSketch(Plane.XZ.offset(28).offset(SALIENTE_EXTRUIR6_START)):
        Polygon((28, 0), (78, 0), (89, 0), (89, 3), (75, 3), (28, 50), (28, 61), (25, 61), (25, 40), (28, 40), align=None)
        Polygon((31, 42.757359313), (70.757359313, 3), (31, 3), align=None, mode=Mode.SUBTRACT)
    saliente_extruir6 = extrude(amount=-SALIENTE_EXTRUIR6_DEPTH)

    # Croquis16 → Saliente-Extruir7 (add)
    with BuildSketch(Plane.XZ.offset(6.5).offset(SALIENTE_EXTRUIR7_START)):
        Polygon((31, 3), (70.757359313, 3), (31, 42.757359313), align=None)
        Polygon((33, 5), (65.928932188, 5), (33, 37.928932188), align=None, mode=Mode.SUBTRACT)
    saliente_extruir7 = extrude(amount=-SALIENTE_EXTRUIR7_DEPTH)

    # Redondeo1
    redondeo1_edges = [part.edges().sort_by_distance(p)[0] for p in [
        (33, 0, 37.928932188),
        (65.928932188, 0, 5),
        (33, 0, 5),
    ]]
    fillet(redondeo1_edges, radius=REDONDEO1_R)

    # Croquis17 → Cortar-Extruir7 (cut)
    with BuildSketch(Plane.XY.offset(3)):
        with Locations((82, 0)):
            Circle(CROQUIS17_R)
    cortar_extruir7 = extrude(amount=-CORTAR_EXTRUIR7_DEPTH, mode=Mode.SUBTRACT)

    # Croquis18 → Cortar-Extruir8 (cut)
    with BuildSketch(Plane(origin=(28, 0, 0), x_dir=(0, 0, -1), z_dir=(1, 0, 0))):
        with Locations((-55.5, 0)):
            Circle(CROQUIS18_R)
    cortar_extruir8 = extrude(amount=-CORTAR_EXTRUIR8_DEPTH, mode=Mode.SUBTRACT)

    # Refrentado para tornillo tap_n con cabez (through all)
    with Locations(Plane(origin=(28, 0, 0), x_dir=(0, 0, -1), z_dir=(1, 0, 0))):
        with Locations((-55.5, 0)):
            refrentado_para_tornillo_tap_n_con_cabez = CounterSinkHole(REFRENTADO_PARA_TORNILLO_TAP_N_CON_CABEZ_D / 2, REFRENTADO_PARA_TORNILLO_TAP_N_CON_CABEZ_CSINK_D / 2, counter_sink_angle=REFRENTADO_PARA_TORNILLO_TAP_N_CON_CABEZ_CSINK_ANGLE)

    # Croquis22 → Refrentado para tornillo tap_n con c 2 (revolve, cut)
    with BuildSketch(Plane(origin=(82, 0, 3), x_dir=(0, -1, 0), z_dir=(1, 0, 0))):
        Polygon((0, 0), (0, 3), (2.25, 3), (2.25, 2.23), (4.48, 0), align=None)
    refrentado_para_tornillo_tap_n_con_c_2 = revolve(axis=Axis((82, 0, 9.35), (0, 0, -1)), mode=Mode.SUBTRACT)

    # Simetría3: Saliente-Extruir6, Saliente-Extruir7, Cortar-Extruir7, Cortar-Extruir8, Refrentado para tornillo tap_n con cabez, Refrentado para tornillo tap_n con c 2 across plane
    add(saliente_extruir6.mirror(Plane(origin=(0, 0, 0), x_dir=(0, 0, 1), z_dir=(0.707106781, 0.707106781, 0))))
    add(saliente_extruir7.mirror(Plane(origin=(0, 0, 0), x_dir=(0, 0, 1), z_dir=(0.707106781, 0.707106781, 0))))
    add(cortar_extruir7.mirror(Plane(origin=(0, 0, 0), x_dir=(0, 0, 1), z_dir=(0.707106781, 0.707106781, 0))), mode=Mode.SUBTRACT)
    add(cortar_extruir8.mirror(Plane(origin=(0, 0, 0), x_dir=(0, 0, 1), z_dir=(0.707106781, 0.707106781, 0))), mode=Mode.SUBTRACT)
    add(refrentado_para_tornillo_tap_n_con_cabez.mirror(Plane(origin=(0, 0, 0), x_dir=(0, 0, 1), z_dir=(0.707106781, 0.707106781, 0))), mode=Mode.SUBTRACT)
    add(refrentado_para_tornillo_tap_n_con_c_2.mirror(Plane(origin=(0, 0, 0), x_dir=(0, 0, 1), z_dir=(0.707106781, 0.707106781, 0))), mode=Mode.SUBTRACT)

    # Redondeo1 of Simetría3
    redondeo1_of_simetr_a3_edges = [part.edges().sort_by_distance(p)[0] for p in [
        (0, -33, 37.928932188),
        (0, -65.928932188, 5),
        (0, -33, 5),
    ]]
    fillet(redondeo1_of_simetr_a3_edges, radius=REDONDEO1_OF_SIMETR_A3_R)


solid = part.part
